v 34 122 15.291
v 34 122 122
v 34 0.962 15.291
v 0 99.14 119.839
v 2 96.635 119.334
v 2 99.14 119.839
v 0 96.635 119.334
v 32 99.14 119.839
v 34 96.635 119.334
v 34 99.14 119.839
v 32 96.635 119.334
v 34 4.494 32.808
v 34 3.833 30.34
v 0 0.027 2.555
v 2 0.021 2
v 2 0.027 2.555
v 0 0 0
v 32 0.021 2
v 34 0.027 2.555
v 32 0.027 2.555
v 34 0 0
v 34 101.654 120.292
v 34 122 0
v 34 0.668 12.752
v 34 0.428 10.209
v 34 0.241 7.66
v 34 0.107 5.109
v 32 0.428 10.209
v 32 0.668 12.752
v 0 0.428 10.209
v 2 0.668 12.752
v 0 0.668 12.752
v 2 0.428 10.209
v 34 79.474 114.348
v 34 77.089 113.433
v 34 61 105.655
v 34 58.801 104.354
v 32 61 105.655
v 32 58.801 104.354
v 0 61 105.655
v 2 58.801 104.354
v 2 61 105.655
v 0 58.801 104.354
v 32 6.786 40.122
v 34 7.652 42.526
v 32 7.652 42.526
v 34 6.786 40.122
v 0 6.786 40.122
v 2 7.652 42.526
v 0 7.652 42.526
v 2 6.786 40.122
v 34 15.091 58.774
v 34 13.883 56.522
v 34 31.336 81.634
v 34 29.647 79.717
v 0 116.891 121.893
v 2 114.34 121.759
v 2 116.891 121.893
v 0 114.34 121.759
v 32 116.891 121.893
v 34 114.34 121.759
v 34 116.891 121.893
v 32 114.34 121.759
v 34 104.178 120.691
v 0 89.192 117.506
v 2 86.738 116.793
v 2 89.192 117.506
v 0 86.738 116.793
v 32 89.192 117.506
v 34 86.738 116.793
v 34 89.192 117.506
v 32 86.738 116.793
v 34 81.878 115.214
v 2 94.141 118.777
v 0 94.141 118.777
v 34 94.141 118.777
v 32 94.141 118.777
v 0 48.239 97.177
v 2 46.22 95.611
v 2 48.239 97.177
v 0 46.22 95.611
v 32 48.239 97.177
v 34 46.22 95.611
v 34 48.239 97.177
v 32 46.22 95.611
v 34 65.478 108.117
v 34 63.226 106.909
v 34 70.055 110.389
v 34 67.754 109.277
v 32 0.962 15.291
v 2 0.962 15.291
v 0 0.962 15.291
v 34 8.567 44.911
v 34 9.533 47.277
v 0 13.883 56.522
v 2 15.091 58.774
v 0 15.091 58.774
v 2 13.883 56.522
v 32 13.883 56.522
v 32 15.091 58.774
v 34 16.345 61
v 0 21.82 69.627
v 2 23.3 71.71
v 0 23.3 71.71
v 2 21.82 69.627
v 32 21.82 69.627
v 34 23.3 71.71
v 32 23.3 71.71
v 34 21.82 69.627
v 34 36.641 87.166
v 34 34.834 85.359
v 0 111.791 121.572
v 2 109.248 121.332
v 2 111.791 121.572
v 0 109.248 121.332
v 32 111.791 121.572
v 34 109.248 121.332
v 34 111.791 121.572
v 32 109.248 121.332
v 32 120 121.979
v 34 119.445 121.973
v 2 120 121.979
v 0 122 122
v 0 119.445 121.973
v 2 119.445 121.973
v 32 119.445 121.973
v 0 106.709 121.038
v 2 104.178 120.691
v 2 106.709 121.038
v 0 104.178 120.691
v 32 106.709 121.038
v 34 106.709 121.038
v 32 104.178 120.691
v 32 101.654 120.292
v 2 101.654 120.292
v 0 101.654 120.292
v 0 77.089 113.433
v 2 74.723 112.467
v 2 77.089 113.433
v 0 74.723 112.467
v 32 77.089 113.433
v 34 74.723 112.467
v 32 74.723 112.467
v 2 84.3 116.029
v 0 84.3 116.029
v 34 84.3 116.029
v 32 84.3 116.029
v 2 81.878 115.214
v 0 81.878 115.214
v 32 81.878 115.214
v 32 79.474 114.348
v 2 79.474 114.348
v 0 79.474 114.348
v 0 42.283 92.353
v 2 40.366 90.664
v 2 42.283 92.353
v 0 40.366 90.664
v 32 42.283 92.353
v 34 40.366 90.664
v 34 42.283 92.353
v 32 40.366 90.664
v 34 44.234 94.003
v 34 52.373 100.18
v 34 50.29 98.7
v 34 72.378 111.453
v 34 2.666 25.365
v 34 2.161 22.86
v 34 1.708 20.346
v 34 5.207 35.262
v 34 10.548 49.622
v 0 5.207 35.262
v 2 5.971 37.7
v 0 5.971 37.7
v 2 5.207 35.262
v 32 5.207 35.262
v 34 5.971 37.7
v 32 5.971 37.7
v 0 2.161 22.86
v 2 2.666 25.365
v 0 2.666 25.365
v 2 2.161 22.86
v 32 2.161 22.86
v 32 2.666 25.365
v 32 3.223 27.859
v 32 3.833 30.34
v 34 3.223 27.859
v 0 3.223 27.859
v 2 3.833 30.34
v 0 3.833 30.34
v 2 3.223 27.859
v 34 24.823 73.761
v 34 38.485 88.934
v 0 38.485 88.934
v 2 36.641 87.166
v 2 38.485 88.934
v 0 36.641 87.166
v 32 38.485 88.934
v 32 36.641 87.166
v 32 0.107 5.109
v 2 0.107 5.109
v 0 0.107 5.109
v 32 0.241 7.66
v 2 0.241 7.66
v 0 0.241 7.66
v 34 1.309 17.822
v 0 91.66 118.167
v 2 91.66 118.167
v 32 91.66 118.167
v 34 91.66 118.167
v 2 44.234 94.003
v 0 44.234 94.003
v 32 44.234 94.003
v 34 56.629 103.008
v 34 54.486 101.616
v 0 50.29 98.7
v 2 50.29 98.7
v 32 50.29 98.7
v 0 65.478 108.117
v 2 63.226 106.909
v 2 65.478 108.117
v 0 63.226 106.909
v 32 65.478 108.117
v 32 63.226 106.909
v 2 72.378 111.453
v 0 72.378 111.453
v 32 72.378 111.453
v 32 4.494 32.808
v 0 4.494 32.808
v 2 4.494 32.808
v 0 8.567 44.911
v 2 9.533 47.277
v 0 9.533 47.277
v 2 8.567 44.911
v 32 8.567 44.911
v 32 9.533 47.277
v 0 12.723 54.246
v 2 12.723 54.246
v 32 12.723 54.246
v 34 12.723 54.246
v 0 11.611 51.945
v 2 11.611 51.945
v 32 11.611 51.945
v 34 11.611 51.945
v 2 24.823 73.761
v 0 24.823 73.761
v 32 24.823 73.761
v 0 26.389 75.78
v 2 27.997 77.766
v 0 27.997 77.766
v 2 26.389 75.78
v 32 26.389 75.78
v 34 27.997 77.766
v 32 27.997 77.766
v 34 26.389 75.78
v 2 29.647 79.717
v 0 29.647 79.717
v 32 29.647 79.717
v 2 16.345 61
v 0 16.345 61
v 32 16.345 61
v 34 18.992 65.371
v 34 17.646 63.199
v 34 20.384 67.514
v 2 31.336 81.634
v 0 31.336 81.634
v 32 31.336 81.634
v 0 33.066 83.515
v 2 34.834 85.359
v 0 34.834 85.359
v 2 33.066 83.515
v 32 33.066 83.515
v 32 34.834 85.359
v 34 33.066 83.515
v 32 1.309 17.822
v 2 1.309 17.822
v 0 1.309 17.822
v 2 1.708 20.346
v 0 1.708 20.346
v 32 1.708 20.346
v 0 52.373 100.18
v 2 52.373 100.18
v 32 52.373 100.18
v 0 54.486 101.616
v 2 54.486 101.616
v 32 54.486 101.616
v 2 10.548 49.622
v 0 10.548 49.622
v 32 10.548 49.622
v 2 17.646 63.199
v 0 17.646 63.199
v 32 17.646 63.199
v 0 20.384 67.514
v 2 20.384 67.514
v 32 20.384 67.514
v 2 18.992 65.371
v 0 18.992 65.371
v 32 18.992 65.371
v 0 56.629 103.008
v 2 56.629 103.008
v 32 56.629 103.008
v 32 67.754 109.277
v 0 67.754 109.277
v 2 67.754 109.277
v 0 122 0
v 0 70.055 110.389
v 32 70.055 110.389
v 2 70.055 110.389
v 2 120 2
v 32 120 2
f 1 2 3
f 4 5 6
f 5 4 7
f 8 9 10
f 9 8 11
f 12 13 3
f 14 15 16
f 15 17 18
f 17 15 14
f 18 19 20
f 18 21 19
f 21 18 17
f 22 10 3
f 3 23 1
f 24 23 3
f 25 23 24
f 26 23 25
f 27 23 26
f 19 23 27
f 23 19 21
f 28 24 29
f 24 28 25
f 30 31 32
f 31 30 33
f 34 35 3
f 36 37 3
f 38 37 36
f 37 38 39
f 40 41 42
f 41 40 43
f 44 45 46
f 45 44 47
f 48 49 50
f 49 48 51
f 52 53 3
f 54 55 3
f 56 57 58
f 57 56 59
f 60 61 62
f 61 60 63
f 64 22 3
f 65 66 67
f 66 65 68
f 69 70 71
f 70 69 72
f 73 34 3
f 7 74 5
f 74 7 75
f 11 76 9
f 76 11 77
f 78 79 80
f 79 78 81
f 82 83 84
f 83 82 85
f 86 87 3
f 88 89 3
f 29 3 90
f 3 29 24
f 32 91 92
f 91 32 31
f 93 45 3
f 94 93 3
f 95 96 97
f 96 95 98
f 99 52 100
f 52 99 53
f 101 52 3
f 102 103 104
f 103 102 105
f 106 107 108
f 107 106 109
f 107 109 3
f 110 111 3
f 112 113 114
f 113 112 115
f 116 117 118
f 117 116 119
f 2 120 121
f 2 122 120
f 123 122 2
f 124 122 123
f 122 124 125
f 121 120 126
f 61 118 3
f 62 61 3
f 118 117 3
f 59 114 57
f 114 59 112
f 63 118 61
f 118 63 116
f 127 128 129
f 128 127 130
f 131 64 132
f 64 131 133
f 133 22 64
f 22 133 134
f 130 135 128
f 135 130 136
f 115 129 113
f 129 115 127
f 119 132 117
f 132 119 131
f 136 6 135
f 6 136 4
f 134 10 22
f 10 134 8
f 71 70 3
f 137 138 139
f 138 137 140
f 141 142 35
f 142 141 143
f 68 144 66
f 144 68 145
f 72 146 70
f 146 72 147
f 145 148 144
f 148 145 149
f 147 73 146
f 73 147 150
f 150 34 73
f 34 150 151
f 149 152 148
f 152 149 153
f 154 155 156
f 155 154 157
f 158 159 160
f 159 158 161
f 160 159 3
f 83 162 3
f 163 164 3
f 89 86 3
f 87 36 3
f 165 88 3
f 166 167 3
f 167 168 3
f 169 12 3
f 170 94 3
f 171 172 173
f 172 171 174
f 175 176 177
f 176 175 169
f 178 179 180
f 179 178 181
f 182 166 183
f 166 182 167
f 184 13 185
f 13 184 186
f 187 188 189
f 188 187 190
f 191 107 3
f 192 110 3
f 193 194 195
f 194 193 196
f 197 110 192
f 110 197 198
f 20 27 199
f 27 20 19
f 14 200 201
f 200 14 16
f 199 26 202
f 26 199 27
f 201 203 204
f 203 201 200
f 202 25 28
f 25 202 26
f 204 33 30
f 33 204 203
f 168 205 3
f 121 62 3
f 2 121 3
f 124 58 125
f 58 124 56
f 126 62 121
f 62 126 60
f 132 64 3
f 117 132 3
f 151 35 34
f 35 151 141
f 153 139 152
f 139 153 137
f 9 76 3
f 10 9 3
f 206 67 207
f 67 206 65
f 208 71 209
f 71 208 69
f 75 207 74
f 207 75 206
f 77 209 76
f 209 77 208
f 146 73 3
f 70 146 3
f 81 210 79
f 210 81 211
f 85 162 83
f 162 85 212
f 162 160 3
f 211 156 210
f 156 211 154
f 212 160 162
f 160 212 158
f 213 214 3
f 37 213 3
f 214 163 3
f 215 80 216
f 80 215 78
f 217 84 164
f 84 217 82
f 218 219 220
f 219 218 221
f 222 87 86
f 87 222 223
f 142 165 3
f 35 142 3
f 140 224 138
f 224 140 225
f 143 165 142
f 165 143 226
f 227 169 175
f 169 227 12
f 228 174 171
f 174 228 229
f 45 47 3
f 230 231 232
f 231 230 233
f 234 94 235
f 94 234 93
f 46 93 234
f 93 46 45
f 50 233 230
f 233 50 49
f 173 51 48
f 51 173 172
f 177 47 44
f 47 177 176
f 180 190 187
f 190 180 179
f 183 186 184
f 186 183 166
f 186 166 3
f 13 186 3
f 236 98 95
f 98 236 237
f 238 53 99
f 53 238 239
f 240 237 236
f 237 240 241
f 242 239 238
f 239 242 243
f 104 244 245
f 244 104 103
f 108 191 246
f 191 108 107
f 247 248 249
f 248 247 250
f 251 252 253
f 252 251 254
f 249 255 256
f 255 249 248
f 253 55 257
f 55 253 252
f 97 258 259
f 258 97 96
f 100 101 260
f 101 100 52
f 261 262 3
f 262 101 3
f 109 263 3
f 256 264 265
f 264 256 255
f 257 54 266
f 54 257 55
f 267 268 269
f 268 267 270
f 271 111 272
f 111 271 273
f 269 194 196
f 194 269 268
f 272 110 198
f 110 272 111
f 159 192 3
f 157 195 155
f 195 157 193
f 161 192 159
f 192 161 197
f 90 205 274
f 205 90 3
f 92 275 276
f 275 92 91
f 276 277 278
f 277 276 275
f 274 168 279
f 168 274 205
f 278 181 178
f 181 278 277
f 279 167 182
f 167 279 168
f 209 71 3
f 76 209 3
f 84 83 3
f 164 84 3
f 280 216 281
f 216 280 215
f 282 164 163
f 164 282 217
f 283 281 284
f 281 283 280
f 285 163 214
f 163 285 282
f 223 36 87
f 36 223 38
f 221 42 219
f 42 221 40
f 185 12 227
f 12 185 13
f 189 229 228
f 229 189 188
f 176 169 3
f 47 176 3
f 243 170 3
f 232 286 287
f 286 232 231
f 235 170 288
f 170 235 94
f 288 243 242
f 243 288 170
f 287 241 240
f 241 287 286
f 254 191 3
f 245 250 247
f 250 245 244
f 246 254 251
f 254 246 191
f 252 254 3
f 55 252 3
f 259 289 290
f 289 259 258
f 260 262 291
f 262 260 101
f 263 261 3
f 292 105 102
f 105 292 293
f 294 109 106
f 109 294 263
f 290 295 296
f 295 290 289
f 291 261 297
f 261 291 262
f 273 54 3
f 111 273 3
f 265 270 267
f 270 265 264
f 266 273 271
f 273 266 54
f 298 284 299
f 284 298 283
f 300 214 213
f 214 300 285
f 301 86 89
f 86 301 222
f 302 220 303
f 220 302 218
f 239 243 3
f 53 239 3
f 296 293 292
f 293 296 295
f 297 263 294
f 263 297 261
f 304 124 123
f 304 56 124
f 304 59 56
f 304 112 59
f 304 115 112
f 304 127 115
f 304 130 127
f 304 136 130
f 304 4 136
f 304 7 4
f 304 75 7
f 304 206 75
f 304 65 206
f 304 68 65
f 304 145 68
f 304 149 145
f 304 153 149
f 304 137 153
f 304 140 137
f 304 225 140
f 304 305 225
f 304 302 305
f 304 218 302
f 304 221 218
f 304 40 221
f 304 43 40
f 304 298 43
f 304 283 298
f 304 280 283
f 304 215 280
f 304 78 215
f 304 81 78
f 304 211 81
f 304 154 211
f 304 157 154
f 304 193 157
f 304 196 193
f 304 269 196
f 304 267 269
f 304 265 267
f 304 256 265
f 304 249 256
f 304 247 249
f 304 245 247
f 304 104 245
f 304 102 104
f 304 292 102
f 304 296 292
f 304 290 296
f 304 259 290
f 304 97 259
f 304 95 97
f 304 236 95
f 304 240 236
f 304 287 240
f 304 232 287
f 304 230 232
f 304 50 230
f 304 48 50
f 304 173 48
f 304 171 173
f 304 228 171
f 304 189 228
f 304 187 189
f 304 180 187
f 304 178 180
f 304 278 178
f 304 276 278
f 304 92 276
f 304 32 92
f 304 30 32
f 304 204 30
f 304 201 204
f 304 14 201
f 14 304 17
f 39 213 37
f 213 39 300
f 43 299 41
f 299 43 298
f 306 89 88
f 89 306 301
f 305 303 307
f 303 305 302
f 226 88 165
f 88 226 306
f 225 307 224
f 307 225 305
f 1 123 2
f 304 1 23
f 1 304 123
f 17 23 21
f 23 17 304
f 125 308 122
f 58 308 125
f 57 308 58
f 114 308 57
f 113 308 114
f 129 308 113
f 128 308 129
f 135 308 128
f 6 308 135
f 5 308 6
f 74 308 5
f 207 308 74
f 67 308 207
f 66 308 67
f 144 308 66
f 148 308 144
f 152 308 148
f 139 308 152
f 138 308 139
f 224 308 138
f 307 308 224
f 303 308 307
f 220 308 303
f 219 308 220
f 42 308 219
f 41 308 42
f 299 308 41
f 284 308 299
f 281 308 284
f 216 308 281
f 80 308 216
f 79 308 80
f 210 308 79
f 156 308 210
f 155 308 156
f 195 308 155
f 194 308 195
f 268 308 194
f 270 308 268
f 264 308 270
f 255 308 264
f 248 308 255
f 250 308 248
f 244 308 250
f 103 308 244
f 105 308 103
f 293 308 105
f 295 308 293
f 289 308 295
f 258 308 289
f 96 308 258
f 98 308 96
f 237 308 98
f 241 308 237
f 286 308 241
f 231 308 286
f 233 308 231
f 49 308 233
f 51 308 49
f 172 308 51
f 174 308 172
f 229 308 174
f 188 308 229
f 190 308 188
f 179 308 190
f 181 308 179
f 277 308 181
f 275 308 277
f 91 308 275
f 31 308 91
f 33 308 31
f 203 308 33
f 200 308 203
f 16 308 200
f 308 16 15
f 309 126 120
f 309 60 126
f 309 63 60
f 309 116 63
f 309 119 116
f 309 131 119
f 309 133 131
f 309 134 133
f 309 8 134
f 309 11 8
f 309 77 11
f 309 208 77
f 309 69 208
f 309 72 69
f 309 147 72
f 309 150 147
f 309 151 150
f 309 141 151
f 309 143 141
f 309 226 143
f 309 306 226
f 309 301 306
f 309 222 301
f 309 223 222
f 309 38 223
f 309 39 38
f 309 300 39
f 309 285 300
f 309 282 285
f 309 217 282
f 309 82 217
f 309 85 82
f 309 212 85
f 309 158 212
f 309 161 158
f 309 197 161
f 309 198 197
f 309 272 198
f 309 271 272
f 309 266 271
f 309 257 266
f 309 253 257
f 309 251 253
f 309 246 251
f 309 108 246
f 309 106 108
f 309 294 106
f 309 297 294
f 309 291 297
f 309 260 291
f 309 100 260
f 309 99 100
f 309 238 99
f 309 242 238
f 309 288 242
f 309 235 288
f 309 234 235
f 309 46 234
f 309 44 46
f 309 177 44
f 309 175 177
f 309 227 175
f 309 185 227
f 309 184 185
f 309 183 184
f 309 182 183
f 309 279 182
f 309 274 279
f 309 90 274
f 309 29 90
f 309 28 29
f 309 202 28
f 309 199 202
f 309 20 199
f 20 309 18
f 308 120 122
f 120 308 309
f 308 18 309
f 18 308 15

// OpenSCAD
iw = 30;
ih = 120;

wall = 2;

w = iw + 2 * wall;
h = ih + wall;

difference() {
    translate([0, h, 0]) {
        difference() {
            rotate([0, 90, 0])
            cylinder(h = w, d = h * 2, $fn = 300);
            
            translate([-1, 0, -1])
            cube([w + 2, h + 1, h + 2]);
            
            translate([-1, -(h + 1), -(h + 1)])
            cube([w + 2, 2 * (h + 1), h + 1]);
            
        }
    }
    translate([wall, 0, wall])
    cube([iw, ih, h]);
}
